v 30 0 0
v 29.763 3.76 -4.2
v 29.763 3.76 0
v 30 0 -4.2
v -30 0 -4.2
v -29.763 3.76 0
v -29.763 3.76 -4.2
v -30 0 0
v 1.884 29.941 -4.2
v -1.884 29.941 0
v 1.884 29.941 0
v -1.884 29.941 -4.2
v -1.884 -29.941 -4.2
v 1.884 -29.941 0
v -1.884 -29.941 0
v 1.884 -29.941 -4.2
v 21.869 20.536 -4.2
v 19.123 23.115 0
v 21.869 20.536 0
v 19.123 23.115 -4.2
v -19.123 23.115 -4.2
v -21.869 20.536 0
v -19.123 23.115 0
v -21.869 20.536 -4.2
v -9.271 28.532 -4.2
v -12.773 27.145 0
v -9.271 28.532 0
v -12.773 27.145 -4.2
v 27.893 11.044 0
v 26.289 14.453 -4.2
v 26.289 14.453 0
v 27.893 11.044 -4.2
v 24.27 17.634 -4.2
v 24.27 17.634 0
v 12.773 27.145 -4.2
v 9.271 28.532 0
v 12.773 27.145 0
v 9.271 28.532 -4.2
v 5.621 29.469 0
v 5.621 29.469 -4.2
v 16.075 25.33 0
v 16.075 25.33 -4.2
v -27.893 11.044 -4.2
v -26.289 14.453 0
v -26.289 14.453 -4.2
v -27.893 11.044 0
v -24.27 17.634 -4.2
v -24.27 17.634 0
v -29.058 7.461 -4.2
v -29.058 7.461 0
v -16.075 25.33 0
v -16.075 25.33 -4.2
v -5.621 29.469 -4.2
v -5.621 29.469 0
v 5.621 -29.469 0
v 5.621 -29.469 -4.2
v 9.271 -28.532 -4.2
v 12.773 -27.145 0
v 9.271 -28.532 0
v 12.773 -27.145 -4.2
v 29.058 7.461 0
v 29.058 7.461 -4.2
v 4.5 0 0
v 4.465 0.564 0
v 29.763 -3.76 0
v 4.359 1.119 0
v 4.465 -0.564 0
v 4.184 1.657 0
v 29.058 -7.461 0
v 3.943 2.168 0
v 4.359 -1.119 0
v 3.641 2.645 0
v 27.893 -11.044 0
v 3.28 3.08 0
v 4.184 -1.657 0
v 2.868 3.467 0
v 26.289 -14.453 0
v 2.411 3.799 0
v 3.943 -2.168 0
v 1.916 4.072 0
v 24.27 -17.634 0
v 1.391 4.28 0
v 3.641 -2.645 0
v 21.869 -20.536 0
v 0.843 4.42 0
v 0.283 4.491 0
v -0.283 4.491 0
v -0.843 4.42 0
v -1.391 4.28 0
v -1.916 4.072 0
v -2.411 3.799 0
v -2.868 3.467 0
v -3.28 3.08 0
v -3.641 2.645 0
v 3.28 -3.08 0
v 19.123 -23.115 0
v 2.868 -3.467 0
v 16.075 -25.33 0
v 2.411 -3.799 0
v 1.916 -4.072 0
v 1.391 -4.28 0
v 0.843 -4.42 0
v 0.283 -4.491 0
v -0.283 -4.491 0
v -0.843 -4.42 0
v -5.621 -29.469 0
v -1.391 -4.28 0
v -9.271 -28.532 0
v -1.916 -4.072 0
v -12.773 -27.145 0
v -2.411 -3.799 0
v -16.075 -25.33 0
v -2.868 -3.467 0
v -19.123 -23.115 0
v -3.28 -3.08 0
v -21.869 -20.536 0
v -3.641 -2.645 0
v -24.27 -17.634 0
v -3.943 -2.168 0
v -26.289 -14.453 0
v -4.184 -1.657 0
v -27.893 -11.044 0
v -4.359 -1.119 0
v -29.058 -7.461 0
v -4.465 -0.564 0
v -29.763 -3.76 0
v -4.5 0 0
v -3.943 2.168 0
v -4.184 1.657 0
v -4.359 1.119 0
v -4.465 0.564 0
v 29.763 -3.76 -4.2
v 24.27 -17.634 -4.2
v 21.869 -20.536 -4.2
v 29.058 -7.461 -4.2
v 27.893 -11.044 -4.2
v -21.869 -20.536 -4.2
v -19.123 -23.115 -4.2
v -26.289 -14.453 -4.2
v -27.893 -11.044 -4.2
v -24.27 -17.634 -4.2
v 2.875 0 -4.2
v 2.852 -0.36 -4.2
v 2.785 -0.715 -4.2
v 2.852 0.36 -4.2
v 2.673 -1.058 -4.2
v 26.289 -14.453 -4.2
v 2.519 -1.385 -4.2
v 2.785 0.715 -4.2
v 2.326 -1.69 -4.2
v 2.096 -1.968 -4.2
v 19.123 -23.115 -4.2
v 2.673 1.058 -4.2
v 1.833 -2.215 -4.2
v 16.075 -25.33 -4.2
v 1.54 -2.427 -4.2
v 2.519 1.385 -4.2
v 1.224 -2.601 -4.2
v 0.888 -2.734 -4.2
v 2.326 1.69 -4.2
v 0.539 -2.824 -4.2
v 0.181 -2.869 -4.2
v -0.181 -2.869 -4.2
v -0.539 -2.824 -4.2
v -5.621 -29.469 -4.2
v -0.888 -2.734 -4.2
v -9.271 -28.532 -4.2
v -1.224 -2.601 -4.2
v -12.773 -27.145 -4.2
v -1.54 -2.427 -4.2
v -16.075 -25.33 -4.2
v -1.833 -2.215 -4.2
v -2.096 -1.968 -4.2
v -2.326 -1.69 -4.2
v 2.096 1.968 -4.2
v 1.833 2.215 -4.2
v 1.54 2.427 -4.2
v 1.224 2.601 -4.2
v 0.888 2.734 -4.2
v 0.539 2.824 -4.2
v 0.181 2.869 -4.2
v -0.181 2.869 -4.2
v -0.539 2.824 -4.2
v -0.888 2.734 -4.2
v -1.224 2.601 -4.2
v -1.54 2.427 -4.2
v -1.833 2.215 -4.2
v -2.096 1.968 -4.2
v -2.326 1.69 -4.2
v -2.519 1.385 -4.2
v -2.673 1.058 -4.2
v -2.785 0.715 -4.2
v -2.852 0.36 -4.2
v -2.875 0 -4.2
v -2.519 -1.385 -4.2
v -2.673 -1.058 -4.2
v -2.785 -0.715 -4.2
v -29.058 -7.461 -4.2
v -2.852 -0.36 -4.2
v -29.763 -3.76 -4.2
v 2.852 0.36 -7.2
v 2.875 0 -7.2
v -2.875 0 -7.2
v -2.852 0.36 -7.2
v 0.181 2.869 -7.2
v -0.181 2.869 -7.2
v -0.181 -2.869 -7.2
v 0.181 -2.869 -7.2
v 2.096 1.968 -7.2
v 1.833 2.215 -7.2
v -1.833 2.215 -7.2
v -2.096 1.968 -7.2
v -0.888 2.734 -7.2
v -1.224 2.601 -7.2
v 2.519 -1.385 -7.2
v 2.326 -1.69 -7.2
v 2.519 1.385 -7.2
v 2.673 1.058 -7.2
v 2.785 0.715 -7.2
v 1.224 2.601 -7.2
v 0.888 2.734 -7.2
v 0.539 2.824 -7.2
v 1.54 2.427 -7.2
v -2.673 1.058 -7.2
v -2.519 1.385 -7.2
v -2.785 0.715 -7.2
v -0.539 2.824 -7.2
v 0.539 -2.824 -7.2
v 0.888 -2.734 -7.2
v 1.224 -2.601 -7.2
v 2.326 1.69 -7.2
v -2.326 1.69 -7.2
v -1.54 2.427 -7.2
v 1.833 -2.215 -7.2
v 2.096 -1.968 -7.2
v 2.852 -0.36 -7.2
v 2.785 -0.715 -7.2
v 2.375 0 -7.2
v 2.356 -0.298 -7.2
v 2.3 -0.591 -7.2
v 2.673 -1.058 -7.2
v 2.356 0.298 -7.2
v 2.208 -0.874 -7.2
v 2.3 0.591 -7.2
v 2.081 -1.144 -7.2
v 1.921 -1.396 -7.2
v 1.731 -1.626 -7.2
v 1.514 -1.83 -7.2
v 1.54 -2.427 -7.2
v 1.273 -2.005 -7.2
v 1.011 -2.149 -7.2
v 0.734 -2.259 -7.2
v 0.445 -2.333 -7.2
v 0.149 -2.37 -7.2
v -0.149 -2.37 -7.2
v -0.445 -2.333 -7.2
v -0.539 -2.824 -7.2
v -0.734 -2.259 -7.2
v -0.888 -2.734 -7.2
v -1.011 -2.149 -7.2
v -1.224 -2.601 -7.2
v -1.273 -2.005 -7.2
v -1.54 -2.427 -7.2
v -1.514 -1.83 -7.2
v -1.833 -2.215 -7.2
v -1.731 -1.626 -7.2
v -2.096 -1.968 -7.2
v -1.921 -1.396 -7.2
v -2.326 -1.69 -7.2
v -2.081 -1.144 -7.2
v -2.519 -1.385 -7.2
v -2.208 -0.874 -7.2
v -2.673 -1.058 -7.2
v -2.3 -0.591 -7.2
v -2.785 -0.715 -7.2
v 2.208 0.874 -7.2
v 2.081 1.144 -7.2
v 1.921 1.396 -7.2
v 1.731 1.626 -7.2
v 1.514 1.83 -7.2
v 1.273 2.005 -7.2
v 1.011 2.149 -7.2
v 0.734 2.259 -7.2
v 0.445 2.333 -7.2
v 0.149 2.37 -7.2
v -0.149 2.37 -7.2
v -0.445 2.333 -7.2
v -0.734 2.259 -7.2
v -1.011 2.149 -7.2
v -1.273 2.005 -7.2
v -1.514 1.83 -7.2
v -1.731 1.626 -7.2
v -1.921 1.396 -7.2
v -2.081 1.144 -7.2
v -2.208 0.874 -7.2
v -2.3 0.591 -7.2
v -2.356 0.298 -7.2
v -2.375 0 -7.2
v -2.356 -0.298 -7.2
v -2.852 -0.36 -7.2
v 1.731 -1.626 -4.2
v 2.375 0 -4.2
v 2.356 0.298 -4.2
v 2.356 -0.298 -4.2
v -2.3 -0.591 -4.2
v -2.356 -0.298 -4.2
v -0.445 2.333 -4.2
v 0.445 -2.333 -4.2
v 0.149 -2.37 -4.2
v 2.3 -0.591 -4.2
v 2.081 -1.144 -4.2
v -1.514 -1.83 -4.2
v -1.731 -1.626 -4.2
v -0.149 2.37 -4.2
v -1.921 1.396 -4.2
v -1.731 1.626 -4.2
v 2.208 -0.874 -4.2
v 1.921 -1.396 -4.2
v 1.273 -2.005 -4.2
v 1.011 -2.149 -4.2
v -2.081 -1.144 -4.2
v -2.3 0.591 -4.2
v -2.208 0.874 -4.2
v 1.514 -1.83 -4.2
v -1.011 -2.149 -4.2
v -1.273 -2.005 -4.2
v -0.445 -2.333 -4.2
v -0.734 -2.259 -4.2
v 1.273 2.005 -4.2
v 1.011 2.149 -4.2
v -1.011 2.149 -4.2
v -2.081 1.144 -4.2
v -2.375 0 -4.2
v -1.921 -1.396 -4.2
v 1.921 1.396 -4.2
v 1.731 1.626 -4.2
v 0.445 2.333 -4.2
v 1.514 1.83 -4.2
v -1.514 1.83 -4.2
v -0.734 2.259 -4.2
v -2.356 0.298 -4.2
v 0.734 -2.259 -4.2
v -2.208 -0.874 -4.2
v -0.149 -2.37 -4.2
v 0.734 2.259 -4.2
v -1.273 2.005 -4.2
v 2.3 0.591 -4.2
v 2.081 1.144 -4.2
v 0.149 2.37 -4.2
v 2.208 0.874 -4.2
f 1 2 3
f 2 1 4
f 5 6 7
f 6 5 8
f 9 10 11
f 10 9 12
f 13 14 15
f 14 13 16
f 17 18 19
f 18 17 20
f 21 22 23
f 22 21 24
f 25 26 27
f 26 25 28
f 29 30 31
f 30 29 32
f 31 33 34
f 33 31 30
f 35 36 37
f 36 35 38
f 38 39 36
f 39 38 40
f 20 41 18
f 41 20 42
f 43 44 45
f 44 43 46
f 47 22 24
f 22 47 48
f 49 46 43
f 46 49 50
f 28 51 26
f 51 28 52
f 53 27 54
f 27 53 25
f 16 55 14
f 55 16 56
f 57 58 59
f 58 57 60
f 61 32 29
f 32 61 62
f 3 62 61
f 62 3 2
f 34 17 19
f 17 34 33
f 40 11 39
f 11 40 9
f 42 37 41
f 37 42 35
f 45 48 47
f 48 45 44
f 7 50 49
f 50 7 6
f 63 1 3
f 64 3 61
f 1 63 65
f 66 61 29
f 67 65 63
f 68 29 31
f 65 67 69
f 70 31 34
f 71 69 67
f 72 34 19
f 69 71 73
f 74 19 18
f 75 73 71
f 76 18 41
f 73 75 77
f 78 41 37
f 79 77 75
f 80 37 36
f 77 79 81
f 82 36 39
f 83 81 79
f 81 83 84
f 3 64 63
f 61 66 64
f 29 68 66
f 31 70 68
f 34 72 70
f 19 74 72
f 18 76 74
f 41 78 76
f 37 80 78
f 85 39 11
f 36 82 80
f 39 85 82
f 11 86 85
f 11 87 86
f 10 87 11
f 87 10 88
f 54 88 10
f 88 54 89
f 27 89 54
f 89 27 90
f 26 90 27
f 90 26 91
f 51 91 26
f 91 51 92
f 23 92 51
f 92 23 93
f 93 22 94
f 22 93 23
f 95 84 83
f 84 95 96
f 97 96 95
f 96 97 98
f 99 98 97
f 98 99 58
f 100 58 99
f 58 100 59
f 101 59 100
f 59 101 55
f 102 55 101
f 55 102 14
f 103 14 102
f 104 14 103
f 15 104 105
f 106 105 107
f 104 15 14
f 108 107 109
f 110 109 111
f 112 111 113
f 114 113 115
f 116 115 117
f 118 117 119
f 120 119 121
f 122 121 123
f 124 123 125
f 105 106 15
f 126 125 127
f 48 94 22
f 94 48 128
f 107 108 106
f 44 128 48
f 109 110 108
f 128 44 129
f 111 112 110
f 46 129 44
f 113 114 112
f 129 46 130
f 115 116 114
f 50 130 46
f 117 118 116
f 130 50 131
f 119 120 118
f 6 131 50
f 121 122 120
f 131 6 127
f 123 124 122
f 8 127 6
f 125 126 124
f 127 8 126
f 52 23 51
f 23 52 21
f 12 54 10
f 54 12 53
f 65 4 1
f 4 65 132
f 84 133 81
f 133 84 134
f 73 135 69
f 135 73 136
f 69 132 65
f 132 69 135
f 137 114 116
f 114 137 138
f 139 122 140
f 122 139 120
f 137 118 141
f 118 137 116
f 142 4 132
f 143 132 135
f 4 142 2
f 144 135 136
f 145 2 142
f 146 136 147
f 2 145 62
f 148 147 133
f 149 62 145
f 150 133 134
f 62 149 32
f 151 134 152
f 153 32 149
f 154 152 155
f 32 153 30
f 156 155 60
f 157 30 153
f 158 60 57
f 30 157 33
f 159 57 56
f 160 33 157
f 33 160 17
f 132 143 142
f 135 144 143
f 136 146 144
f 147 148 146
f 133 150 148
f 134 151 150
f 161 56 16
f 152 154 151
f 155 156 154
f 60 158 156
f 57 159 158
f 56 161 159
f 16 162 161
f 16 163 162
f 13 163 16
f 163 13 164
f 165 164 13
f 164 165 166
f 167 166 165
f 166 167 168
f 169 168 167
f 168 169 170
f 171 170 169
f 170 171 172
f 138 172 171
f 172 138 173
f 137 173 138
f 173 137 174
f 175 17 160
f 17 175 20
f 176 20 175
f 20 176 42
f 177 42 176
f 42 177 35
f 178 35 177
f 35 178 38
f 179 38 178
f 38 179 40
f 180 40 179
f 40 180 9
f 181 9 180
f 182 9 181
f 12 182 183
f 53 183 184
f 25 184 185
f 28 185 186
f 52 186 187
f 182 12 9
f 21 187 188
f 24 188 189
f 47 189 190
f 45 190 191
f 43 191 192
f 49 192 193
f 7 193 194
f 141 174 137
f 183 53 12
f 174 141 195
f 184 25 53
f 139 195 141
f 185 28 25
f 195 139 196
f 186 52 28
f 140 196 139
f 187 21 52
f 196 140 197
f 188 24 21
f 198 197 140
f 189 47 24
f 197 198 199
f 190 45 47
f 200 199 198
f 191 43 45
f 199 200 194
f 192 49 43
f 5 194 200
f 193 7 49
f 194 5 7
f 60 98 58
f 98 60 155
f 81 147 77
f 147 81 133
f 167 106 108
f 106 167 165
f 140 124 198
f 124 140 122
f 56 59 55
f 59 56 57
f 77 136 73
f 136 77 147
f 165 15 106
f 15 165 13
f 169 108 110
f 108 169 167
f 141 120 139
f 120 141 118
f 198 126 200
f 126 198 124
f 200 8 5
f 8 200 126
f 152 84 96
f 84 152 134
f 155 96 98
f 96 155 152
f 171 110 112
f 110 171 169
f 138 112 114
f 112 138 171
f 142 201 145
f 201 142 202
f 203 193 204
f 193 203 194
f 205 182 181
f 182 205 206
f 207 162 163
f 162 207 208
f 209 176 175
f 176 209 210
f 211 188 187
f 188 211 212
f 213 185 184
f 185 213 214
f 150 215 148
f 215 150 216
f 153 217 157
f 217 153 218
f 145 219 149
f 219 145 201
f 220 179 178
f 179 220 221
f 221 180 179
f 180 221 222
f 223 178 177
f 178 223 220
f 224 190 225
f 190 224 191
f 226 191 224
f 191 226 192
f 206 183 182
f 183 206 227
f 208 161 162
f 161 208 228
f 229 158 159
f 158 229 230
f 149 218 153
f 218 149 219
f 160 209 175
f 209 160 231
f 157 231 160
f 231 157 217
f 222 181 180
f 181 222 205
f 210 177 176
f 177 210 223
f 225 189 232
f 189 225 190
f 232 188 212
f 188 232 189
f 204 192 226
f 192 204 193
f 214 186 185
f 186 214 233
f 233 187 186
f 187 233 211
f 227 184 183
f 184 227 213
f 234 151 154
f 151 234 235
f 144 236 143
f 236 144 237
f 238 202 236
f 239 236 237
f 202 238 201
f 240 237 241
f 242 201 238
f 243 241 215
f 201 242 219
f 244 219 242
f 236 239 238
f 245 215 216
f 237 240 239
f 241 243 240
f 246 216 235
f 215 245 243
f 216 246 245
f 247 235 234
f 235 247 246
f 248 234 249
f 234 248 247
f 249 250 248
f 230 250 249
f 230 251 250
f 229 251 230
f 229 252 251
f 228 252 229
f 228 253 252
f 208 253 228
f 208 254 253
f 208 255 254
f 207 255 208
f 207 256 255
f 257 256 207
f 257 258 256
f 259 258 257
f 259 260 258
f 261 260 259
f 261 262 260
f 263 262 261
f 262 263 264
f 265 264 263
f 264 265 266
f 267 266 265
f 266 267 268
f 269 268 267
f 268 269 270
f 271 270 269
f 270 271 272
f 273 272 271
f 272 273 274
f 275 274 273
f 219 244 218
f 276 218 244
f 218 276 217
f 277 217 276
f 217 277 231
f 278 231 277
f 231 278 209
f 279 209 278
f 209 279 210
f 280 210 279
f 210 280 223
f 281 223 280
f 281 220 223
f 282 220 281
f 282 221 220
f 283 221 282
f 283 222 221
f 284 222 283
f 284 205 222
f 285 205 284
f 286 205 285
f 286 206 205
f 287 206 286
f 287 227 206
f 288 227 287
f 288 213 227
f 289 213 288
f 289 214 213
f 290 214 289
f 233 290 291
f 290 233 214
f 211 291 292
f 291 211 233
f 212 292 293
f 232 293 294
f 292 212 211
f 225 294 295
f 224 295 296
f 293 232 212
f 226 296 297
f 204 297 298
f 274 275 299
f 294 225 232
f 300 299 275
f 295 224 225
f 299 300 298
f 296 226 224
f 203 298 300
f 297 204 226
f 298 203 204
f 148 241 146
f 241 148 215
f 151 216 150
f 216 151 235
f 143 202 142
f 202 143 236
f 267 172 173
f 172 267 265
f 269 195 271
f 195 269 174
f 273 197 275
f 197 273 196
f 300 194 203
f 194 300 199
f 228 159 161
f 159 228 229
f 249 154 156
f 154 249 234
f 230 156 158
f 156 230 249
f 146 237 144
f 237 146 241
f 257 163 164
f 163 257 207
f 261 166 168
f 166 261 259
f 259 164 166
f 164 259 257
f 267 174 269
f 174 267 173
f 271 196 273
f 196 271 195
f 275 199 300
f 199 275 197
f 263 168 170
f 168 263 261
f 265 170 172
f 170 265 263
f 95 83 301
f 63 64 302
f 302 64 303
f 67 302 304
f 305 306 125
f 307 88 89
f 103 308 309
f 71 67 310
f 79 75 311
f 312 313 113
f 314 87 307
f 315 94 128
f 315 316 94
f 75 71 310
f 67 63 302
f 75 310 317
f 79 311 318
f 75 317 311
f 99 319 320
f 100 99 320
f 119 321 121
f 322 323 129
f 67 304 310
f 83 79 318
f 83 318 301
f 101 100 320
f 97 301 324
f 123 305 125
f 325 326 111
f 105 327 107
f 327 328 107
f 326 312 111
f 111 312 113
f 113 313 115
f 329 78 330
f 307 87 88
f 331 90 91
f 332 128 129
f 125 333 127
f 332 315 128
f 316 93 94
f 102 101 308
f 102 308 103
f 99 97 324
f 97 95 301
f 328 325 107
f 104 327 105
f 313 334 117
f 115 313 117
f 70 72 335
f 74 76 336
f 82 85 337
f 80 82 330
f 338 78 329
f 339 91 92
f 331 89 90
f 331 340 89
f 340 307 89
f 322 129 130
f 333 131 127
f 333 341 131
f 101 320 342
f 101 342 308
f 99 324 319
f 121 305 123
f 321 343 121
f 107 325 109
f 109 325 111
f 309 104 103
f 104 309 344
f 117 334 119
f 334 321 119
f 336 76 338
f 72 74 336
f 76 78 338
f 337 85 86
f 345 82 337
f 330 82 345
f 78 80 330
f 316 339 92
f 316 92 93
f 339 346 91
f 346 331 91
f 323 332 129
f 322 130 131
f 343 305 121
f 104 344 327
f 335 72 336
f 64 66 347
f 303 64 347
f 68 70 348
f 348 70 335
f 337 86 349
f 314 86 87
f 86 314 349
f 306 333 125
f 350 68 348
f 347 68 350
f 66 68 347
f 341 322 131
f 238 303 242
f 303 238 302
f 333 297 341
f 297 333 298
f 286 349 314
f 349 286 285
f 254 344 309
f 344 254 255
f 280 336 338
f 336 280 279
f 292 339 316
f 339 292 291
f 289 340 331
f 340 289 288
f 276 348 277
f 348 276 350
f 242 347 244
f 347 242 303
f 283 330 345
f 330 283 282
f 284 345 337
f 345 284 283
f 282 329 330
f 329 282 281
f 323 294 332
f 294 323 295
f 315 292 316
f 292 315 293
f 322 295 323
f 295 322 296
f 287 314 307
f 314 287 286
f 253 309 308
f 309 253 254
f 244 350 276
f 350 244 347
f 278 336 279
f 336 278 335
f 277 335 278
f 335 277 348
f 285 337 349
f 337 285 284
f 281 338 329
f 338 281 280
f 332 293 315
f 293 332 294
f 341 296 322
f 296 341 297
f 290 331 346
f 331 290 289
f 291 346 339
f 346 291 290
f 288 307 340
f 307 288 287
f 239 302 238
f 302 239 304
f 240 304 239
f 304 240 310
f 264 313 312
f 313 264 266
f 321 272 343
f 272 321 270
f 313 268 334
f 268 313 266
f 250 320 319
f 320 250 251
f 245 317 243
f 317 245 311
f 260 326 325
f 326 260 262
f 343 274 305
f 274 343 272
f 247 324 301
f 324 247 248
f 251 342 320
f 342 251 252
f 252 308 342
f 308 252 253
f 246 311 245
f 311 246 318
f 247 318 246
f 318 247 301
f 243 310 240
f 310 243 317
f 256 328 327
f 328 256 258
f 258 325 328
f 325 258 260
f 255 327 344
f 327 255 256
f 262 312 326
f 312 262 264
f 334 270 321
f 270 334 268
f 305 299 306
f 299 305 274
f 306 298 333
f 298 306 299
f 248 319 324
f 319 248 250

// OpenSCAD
$fn = 50;


difference() {
	union() {
		translate(v = [0, 0, -4.2000000000]) {
			cylinder(h = 4.2000000000, r = 30.0000000000);
		}
		#translate(v = [0, 0, -7.2000000000]) {
			cylinder(h = 7.2000000000, r = 2.8750000000);
		}
	}
	union() {
		translate(v = [0, 0, 0]) {
			rotate(a = [0, 0, 0]) {
				difference() {
					union() {
						translate(v = [0, 0, -7.2000000000]) {
							cylinder(h = 7.2000000000, r = 2.2500000000);
						}
						translate(v = [0, 0, -4.2000000000]) {
							cylinder(h = 4.2000000000, r1 = 2.3750000000, r2 = 4.5000000000);
						}
						translate(v = [0, 0, -7.2000000000]) {
							cylinder(h = 7.2000000000, r = 2.3750000000);
						}
						translate(v = [0, 0, -7.2000000000]) {
							cylinder(h = 7.2000000000, r = 2.2500000000);
						}
					}
					union();
				}
			}
		}
	}
}
